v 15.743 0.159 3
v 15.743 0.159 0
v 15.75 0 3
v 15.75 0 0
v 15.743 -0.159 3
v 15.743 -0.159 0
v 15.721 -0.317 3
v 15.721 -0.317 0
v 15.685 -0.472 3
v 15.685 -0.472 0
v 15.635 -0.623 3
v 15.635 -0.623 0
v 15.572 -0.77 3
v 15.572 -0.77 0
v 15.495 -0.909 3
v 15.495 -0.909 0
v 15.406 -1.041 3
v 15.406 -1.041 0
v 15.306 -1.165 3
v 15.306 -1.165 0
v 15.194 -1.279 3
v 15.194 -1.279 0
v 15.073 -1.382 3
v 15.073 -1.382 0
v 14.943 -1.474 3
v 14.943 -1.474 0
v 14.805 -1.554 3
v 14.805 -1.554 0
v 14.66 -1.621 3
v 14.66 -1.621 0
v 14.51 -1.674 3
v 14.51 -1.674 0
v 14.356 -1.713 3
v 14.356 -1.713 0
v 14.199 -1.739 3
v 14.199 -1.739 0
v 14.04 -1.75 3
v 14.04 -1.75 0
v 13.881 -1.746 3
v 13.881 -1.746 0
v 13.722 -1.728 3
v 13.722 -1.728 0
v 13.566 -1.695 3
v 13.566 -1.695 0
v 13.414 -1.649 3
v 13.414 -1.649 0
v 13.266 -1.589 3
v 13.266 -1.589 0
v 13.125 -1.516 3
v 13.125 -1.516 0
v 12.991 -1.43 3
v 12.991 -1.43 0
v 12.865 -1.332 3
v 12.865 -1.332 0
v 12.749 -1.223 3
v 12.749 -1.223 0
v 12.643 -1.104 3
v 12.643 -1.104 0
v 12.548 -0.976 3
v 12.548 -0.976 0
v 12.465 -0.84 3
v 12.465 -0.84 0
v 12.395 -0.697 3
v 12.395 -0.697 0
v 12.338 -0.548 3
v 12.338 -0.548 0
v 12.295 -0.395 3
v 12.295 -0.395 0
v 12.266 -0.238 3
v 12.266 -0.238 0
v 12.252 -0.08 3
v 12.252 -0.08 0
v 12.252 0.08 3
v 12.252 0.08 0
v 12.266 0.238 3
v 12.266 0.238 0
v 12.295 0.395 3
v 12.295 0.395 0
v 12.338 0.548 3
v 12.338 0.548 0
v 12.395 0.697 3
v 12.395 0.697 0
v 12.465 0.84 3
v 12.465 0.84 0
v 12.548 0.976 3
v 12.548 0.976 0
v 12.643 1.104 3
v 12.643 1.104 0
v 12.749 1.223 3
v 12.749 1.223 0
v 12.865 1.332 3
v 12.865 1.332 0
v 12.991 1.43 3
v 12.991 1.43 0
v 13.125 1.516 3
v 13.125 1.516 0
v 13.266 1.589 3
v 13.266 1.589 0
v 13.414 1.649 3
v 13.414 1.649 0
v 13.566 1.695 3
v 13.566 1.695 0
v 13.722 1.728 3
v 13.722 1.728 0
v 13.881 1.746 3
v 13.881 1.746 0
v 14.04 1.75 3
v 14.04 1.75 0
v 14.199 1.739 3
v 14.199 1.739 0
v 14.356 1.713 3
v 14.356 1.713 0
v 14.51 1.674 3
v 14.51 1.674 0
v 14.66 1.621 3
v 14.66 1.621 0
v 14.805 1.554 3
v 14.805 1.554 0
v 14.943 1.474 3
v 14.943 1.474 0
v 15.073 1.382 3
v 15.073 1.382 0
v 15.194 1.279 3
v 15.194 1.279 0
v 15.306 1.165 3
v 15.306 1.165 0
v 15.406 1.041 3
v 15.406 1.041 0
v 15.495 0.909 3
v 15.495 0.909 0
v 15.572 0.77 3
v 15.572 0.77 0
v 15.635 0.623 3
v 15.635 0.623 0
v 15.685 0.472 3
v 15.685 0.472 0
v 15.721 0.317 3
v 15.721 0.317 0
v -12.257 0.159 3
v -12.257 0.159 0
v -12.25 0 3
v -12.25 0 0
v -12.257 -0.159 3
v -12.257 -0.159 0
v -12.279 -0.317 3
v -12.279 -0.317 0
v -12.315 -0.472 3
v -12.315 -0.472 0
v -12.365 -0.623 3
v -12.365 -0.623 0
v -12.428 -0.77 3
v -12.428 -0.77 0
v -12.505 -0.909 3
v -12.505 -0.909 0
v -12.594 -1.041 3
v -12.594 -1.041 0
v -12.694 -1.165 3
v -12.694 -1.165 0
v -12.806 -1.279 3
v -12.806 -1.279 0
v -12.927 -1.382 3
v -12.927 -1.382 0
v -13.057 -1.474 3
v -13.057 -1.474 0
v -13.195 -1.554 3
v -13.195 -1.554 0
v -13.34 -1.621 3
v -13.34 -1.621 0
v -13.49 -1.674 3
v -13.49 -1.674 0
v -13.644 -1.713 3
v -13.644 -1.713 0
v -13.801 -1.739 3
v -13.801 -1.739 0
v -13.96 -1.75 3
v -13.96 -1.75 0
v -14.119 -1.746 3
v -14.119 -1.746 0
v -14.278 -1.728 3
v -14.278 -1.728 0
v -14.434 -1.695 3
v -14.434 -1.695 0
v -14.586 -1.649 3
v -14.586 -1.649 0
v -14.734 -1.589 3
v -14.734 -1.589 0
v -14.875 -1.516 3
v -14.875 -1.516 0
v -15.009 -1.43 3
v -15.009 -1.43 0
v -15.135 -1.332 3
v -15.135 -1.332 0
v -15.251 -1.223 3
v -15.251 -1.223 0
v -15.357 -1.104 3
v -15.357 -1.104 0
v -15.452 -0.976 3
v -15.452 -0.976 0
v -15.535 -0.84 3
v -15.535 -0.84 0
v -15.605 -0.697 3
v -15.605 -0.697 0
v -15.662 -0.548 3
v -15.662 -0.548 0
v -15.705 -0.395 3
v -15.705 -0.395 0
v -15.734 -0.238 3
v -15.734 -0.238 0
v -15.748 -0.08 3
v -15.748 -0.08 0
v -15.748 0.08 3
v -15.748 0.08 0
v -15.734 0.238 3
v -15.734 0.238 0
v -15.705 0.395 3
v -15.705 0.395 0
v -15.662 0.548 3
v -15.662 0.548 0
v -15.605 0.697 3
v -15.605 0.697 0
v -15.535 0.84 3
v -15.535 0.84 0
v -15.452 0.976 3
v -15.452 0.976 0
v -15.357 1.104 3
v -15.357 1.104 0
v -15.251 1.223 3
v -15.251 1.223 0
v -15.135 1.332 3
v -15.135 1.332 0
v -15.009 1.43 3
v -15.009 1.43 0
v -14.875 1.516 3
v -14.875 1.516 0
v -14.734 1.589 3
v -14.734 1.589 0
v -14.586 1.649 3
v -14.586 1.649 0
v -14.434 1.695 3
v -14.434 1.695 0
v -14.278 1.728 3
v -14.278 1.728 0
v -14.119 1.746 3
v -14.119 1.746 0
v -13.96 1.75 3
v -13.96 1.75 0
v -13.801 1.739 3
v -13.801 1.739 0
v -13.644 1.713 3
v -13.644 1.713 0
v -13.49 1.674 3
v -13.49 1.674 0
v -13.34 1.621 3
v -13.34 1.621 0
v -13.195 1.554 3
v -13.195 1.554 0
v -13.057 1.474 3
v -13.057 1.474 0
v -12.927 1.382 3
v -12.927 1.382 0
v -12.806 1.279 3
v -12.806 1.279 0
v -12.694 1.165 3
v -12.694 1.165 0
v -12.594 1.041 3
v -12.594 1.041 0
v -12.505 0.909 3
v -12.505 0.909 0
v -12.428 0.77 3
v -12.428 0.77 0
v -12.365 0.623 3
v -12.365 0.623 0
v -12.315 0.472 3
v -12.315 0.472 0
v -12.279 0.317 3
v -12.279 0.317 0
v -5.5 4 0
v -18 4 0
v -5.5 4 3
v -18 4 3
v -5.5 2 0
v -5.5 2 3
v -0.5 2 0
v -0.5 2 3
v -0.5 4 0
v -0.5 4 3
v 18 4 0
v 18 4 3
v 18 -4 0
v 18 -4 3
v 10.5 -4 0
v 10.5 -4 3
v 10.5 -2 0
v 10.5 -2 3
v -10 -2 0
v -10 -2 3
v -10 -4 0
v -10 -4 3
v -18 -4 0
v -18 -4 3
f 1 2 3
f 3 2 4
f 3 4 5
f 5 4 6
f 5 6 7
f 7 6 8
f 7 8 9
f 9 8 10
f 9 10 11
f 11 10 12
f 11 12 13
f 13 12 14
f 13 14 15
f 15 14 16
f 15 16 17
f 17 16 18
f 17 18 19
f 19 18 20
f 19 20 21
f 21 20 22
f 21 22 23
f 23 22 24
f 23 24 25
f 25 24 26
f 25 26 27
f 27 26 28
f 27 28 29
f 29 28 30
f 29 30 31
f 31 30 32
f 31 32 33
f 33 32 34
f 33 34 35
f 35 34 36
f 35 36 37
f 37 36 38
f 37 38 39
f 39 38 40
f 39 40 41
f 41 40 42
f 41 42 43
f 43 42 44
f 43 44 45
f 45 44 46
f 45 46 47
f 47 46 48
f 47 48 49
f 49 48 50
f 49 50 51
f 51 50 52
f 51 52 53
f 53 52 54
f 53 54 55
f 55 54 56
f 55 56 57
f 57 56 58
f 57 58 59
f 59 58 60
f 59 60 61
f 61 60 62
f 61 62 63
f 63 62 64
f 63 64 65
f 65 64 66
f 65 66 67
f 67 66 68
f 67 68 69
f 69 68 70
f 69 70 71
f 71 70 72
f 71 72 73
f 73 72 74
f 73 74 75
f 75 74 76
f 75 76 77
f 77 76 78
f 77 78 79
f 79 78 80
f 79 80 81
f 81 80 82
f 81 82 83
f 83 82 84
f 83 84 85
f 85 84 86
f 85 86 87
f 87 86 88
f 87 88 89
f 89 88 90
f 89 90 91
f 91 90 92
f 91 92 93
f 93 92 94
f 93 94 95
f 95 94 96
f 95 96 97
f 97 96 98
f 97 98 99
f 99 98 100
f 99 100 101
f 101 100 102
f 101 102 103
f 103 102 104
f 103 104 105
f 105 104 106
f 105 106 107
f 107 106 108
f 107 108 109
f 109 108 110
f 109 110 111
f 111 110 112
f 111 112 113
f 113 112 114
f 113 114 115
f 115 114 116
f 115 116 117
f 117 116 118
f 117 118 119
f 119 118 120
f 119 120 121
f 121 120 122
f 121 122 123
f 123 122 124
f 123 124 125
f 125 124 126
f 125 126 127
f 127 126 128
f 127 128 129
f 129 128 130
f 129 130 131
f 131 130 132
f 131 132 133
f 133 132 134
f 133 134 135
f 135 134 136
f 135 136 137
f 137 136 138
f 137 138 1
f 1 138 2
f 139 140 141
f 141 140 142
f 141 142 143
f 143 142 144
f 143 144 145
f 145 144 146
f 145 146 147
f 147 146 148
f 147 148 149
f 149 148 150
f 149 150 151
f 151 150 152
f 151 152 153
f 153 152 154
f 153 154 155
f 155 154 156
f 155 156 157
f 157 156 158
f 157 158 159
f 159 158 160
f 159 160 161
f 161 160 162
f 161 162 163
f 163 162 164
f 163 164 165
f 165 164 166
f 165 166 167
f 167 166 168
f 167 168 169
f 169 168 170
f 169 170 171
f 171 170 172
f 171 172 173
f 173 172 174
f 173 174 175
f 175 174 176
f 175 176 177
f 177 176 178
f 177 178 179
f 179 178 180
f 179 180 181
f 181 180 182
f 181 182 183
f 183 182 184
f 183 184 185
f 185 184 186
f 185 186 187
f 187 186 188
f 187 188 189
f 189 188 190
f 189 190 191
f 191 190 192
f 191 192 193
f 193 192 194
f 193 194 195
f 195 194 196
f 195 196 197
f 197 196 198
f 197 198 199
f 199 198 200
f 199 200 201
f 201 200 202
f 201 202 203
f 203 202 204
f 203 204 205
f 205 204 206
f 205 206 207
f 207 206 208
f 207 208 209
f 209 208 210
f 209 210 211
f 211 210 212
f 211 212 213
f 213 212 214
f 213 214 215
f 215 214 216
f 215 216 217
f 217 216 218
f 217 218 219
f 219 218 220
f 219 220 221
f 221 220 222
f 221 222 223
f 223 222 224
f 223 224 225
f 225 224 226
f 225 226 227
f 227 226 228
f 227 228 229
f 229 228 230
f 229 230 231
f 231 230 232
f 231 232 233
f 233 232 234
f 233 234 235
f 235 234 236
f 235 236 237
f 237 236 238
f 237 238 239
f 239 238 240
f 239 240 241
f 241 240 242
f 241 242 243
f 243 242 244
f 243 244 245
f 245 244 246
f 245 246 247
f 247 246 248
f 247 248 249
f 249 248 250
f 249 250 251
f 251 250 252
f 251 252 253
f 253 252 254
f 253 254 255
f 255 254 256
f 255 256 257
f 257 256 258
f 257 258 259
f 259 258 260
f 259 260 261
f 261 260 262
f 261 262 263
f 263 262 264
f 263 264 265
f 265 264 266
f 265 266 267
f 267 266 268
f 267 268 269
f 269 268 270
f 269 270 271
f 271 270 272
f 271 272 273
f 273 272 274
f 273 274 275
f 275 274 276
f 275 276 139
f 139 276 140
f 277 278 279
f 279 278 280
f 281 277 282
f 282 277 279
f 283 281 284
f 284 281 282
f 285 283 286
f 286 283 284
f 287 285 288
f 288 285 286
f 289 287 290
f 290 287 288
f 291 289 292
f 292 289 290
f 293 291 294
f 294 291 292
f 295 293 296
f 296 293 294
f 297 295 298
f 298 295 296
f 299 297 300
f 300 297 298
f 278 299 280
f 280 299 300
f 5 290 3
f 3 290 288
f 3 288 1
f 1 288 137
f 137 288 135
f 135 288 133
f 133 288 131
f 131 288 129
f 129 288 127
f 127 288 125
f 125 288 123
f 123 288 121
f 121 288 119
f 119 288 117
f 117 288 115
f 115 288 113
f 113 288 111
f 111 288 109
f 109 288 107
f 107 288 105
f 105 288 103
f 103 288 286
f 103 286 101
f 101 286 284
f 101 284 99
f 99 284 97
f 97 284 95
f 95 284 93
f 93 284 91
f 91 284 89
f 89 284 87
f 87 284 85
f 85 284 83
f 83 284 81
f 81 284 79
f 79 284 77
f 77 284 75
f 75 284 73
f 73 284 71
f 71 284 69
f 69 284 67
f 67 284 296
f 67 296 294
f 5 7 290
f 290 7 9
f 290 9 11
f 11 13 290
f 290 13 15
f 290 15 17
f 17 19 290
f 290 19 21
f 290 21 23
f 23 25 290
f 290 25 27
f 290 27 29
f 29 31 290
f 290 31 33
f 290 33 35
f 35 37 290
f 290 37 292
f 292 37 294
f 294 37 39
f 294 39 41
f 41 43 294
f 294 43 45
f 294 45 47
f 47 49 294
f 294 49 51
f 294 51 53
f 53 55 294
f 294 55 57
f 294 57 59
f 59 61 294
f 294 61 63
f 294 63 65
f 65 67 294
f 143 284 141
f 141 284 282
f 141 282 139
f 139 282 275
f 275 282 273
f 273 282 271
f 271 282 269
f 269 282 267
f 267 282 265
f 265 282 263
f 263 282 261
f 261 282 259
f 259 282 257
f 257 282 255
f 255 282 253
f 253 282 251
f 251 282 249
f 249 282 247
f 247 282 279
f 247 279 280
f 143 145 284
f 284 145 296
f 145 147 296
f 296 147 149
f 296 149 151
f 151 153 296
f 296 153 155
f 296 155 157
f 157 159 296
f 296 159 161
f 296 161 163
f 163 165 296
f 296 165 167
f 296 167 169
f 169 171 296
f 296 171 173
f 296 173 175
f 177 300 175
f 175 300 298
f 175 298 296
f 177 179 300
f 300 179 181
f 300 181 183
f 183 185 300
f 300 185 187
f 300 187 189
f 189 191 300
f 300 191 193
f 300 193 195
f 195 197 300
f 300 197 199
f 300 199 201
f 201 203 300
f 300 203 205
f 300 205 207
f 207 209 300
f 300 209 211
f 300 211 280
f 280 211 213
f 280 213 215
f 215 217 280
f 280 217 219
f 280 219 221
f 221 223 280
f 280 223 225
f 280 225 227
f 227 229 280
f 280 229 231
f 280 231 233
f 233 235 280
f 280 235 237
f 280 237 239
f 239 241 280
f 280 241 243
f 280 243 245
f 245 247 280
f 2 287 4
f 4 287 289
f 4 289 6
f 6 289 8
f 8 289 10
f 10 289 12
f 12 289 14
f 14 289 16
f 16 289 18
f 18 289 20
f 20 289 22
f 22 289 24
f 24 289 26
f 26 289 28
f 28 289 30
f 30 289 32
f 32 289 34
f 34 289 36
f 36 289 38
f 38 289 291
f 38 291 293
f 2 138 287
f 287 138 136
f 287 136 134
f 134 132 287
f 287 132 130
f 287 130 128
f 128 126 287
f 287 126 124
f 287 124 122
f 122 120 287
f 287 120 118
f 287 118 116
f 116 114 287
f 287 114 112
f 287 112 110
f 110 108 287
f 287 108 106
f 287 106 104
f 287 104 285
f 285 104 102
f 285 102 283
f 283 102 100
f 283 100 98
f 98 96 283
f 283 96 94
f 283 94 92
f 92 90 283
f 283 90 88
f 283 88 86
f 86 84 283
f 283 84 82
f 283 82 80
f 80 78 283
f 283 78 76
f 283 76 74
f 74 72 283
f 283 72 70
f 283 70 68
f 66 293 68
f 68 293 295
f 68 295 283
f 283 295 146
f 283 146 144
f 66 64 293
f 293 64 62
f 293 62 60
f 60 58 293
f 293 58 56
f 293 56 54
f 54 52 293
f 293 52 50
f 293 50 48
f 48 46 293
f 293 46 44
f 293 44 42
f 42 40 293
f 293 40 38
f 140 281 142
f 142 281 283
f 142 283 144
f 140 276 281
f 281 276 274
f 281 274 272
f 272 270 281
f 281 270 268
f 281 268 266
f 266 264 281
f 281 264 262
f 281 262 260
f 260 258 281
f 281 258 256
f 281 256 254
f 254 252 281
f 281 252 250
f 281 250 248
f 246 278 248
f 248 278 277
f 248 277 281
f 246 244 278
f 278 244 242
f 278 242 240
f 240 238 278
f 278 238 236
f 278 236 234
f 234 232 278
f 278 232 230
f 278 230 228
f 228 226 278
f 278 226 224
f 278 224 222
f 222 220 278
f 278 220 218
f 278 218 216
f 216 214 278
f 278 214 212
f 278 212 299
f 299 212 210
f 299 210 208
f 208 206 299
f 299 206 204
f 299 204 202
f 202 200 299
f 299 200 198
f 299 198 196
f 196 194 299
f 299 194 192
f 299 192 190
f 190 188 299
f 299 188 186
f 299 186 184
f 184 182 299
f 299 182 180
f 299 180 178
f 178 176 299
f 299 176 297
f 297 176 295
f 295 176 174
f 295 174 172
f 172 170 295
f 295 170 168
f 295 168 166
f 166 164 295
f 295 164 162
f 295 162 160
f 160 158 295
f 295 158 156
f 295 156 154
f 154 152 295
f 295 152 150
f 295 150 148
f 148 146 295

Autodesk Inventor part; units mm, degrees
ref_plane "YZ Plane" through (0, 0, 0) normal (1, 0, 0) x (0, 1, 0)
ref_plane "XZ Plane" through (0, 0, 0) normal (0, 1, 0) x (-1, 0, 0)
ref_plane "XY Plane" through (0, 0, 0) normal (0, 0, 1) x (1, 0, 0)
sketch "Sketch" plane through (0, 0, 0) normal (0, 0, 1) x (1, 0, 0)
  line L0 (-18, -4) -> (-18, 4)
  circle A0 centre (-14, 0) radius 1.75
  circle A1 centre (14, 0) radius 1.75
  line L1 (-10, -2) -> (-10, -4)
  line L2 (10.5, -2) -> (10.5, -4)
  line L3 (-18, -4) -> (-10, -4)
  line L4 (10.5, -4) -> (18, -4)
  line L5 (-5.5, 4) -> (-5.5, 2)
  line L6 (-5.5, 2) -> (-0.5, 2)
  line L7 (-0.5, 2) -> (-0.5, 4)
  line L8 (-0.5, 4) -> (5.8141, 4)
  line L9 (-0.5, 4) -> (18, 4)
  line L10 (18, 4) -> (18, -4)
  line L11 (-10, -2) -> (10.5, -2)
  line L12 (-5.5, 4) -> (-18, 4)
  line L13 (0, 15.191) -> (0, -14.809) construction
  point P0 (0, 0)
  point P1 (18, 0)
  dimension "d18" = 3.5
  dimension "d34" = 5
  dimension "d35" = 20.5
  dimension "d36" = 2
  dimension "d39" = 36
  dimension "d41" = 8
  dimension "d45" = 12.5
  dimension "d48" = 8
  dimension "d49" = 14
extrude "Extrusion" add sketch "Sketch" along normal blind 3
properties part number "solar_board_holder"
